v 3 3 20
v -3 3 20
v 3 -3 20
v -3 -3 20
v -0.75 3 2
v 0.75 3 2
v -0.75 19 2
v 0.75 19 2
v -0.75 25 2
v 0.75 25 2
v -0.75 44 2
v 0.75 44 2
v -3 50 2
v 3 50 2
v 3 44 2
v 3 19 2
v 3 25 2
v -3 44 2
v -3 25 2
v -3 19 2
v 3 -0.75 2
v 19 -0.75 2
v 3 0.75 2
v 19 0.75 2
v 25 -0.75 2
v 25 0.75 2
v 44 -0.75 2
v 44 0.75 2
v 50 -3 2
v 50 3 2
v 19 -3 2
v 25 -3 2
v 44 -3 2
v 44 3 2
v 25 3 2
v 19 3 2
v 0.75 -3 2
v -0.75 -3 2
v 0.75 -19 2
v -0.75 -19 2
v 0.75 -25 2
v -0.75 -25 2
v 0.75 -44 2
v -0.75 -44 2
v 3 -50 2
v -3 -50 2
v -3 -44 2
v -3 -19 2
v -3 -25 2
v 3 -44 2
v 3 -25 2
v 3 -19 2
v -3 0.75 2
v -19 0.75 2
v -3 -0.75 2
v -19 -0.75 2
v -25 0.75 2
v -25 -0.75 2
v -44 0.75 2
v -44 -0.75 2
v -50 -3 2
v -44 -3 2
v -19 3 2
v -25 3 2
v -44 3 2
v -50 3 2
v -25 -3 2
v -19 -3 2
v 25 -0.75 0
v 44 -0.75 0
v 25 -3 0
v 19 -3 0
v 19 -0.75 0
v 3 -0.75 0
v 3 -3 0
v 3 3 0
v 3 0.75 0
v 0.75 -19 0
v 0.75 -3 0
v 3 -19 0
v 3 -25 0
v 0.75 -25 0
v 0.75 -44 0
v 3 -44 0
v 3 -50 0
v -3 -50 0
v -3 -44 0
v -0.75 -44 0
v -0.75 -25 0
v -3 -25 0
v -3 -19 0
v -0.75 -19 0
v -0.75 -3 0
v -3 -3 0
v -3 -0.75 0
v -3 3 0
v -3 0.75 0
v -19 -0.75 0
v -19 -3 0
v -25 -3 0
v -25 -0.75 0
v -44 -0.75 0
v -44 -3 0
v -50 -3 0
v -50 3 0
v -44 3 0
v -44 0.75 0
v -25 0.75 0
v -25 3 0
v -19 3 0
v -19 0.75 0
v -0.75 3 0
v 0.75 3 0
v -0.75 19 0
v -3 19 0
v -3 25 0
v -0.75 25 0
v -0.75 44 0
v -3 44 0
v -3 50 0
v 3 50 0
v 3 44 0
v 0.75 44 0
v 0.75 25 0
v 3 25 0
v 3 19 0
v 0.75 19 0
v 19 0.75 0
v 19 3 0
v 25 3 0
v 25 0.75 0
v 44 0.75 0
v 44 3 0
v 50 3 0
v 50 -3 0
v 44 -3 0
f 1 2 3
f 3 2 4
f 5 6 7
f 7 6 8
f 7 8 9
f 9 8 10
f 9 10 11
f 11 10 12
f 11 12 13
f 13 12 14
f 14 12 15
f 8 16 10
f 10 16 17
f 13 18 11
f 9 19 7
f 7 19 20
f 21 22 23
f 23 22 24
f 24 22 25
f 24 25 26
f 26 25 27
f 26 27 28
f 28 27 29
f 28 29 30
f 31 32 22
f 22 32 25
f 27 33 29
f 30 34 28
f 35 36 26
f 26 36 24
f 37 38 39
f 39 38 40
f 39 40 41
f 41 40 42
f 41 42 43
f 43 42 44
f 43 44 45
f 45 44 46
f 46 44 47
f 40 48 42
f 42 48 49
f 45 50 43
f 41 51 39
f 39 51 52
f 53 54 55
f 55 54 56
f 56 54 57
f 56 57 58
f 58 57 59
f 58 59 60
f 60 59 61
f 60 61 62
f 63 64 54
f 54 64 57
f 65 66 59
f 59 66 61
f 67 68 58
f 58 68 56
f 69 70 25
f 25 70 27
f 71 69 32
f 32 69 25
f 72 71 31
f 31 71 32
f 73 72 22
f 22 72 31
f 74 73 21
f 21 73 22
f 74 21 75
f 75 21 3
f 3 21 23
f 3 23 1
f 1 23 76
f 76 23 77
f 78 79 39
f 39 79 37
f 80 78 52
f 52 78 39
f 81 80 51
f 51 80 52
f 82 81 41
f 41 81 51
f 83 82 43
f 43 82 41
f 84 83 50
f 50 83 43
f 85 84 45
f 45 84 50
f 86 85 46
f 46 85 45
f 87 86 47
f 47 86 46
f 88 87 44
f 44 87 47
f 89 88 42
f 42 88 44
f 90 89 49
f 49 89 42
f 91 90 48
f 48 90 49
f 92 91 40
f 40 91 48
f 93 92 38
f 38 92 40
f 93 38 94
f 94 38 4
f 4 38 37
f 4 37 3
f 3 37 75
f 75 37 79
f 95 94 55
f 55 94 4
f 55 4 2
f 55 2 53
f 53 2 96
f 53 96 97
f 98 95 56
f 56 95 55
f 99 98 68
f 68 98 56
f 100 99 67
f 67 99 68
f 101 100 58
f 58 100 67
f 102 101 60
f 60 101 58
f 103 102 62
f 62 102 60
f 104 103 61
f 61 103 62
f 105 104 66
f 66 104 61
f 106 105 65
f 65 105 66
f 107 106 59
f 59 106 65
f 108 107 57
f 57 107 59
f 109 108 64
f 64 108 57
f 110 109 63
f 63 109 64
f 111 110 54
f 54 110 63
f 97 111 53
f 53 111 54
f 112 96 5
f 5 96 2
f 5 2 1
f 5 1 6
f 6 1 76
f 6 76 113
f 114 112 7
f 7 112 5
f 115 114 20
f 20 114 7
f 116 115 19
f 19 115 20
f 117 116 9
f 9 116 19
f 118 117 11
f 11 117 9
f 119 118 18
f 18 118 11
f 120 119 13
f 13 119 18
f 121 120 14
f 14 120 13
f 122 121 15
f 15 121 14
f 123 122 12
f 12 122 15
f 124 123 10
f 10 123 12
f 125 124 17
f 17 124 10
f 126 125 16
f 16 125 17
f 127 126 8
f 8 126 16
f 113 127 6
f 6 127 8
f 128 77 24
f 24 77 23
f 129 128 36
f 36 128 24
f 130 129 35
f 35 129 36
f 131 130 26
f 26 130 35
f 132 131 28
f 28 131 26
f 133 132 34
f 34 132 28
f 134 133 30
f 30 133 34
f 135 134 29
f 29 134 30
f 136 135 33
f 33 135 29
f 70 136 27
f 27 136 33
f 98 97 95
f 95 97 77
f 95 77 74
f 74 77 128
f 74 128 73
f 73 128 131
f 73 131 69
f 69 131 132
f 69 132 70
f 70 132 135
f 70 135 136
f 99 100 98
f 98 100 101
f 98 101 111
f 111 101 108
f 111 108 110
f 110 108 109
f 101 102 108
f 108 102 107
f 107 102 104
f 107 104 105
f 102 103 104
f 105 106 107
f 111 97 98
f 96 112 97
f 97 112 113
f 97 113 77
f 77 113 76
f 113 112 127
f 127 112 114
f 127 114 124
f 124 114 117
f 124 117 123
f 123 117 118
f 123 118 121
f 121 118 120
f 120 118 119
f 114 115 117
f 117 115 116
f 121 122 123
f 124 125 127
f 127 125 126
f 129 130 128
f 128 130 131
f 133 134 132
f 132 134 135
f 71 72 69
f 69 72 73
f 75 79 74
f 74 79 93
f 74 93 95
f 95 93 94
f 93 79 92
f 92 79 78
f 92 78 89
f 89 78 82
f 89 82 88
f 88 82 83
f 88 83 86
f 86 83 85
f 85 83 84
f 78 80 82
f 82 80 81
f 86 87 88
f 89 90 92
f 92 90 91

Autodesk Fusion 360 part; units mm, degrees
sketch "Sketch1" plane through (0, 0, 0) normal (0, 0, 1) x (1, 0, 0)
  line L0 (0, 0) -> (0, 50) construction
  line L1 (3, 50) -> (-3, 50)
  line L2 (-3, 50) -> (-3, 44)
  line L3 (-3, 44) -> (3, 44)
  line L4 (3, 44) -> (3, 50)
  line L5 (3, 50) -> (-3, 44) construction
  line L6 (-3, 50) -> (3, 44) construction
  line L7 (3, 3) -> (-3, 3)
  line L8 (-3, 3) -> (-3, -3)
  line L9 (-3, -3) -> (3, -3)
  line L10 (3, -3) -> (3, 3)
  line L11 (3, 3) -> (-3, -3) construction
  line L12 (-3, 3) -> (3, -3) construction
  line L13 (0.75, 44) -> (0.75, 3)
  line L14 (-0.75, 44) -> (-0.75, 3)
  line L15 (-50, -3) -> (-44, -3)
  line L16 (-50, 3) -> (-50, -3)
  line L17 (-44, 3) -> (-50, 3)
  line L18 (-44, -3) -> (-44, 3)
  line L19 (-44, -0.75) -> (-3, -0.75)
  line L20 (-44, 0.75) -> (-3, 0.75)
  line L21 (3, -50) -> (3, -44)
  line L22 (-3, -50) -> (3, -50)
  line L23 (-3, -44) -> (-3, -50)
  line L24 (3, -44) -> (-3, -44)
  line L25 (0.75, -44) -> (0.75, -3)
  line L26 (-0.75, -44) -> (-0.75, -3)
  line L27 (50, 3) -> (44, 3)
  line L28 (50, -3) -> (50, 3)
  line L29 (44, -3) -> (50, -3)
  line L30 (44, 3) -> (44, -3)
  line L31 (44, 0.75) -> (3, 0.75)
  line L32 (44, -0.75) -> (3, -0.75)
  line L33 (3, 25) -> (-3, 25)
  line L34 (-3, 25) -> (-3, 19)
  line L35 (3, 19) -> (3, 25)
  line L36 (-3, 19) -> (3, 19)
  line L37 (-19, 3) -> (-25, 3)
  line L38 (-25, 3) -> (-25, -3)
  line L39 (-25, -3) -> (-19, -3)
  line L40 (-19, -3) -> (-19, 3)
  line L41 (-3, -19) -> (-3, -25)
  line L42 (-3, -25) -> (3, -25)
  line L43 (3, -25) -> (3, -19)
  line L44 (3, -19) -> (-3, -19)
  line L45 (19, -3) -> (25, -3)
  line L46 (25, -3) -> (25, 3)
  line L47 (25, 3) -> (19, 3)
  line L48 (19, 3) -> (19, -3)
  point P0 (0, 47)
  dimension "d1" = 50
  dimension "d2" = 6
  dimension "d3" = 6
  dimension "d4" = 6
  dimension "d5" = 6
  dimension "d6" = 1.5
  dimension "d8" = 360
  dimension "d13" = 6
  dimension "d14" = 6
  dimension "d15" = 25
  dimension "d17" = 360
extrude "Extrude1" add sketch "Sketch1" along normal blind 2
extrude "Extrude2" add sketch "Sketch1" along normal blind 20 contours L7 L8 L9 L10
